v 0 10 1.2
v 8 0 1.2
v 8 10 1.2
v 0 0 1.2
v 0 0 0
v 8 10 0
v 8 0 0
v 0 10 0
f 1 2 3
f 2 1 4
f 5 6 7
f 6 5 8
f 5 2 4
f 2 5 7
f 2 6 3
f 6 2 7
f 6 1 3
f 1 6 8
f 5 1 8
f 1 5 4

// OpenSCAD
/* Warning, this is a very basic generator with a lot of approximation 
input data : [TFBGA, 9TX, 8x10x1.2mm, 48, , A, C04-00170A]
generated by com.zoubworld.electronics.cad.model3d.Basic
Date : Sun Feb 15 10:50:48 CET 2026
*/

//body
color("black")
translate([0,0,0])
cube([8.0,10.0,1.2], center=false);
